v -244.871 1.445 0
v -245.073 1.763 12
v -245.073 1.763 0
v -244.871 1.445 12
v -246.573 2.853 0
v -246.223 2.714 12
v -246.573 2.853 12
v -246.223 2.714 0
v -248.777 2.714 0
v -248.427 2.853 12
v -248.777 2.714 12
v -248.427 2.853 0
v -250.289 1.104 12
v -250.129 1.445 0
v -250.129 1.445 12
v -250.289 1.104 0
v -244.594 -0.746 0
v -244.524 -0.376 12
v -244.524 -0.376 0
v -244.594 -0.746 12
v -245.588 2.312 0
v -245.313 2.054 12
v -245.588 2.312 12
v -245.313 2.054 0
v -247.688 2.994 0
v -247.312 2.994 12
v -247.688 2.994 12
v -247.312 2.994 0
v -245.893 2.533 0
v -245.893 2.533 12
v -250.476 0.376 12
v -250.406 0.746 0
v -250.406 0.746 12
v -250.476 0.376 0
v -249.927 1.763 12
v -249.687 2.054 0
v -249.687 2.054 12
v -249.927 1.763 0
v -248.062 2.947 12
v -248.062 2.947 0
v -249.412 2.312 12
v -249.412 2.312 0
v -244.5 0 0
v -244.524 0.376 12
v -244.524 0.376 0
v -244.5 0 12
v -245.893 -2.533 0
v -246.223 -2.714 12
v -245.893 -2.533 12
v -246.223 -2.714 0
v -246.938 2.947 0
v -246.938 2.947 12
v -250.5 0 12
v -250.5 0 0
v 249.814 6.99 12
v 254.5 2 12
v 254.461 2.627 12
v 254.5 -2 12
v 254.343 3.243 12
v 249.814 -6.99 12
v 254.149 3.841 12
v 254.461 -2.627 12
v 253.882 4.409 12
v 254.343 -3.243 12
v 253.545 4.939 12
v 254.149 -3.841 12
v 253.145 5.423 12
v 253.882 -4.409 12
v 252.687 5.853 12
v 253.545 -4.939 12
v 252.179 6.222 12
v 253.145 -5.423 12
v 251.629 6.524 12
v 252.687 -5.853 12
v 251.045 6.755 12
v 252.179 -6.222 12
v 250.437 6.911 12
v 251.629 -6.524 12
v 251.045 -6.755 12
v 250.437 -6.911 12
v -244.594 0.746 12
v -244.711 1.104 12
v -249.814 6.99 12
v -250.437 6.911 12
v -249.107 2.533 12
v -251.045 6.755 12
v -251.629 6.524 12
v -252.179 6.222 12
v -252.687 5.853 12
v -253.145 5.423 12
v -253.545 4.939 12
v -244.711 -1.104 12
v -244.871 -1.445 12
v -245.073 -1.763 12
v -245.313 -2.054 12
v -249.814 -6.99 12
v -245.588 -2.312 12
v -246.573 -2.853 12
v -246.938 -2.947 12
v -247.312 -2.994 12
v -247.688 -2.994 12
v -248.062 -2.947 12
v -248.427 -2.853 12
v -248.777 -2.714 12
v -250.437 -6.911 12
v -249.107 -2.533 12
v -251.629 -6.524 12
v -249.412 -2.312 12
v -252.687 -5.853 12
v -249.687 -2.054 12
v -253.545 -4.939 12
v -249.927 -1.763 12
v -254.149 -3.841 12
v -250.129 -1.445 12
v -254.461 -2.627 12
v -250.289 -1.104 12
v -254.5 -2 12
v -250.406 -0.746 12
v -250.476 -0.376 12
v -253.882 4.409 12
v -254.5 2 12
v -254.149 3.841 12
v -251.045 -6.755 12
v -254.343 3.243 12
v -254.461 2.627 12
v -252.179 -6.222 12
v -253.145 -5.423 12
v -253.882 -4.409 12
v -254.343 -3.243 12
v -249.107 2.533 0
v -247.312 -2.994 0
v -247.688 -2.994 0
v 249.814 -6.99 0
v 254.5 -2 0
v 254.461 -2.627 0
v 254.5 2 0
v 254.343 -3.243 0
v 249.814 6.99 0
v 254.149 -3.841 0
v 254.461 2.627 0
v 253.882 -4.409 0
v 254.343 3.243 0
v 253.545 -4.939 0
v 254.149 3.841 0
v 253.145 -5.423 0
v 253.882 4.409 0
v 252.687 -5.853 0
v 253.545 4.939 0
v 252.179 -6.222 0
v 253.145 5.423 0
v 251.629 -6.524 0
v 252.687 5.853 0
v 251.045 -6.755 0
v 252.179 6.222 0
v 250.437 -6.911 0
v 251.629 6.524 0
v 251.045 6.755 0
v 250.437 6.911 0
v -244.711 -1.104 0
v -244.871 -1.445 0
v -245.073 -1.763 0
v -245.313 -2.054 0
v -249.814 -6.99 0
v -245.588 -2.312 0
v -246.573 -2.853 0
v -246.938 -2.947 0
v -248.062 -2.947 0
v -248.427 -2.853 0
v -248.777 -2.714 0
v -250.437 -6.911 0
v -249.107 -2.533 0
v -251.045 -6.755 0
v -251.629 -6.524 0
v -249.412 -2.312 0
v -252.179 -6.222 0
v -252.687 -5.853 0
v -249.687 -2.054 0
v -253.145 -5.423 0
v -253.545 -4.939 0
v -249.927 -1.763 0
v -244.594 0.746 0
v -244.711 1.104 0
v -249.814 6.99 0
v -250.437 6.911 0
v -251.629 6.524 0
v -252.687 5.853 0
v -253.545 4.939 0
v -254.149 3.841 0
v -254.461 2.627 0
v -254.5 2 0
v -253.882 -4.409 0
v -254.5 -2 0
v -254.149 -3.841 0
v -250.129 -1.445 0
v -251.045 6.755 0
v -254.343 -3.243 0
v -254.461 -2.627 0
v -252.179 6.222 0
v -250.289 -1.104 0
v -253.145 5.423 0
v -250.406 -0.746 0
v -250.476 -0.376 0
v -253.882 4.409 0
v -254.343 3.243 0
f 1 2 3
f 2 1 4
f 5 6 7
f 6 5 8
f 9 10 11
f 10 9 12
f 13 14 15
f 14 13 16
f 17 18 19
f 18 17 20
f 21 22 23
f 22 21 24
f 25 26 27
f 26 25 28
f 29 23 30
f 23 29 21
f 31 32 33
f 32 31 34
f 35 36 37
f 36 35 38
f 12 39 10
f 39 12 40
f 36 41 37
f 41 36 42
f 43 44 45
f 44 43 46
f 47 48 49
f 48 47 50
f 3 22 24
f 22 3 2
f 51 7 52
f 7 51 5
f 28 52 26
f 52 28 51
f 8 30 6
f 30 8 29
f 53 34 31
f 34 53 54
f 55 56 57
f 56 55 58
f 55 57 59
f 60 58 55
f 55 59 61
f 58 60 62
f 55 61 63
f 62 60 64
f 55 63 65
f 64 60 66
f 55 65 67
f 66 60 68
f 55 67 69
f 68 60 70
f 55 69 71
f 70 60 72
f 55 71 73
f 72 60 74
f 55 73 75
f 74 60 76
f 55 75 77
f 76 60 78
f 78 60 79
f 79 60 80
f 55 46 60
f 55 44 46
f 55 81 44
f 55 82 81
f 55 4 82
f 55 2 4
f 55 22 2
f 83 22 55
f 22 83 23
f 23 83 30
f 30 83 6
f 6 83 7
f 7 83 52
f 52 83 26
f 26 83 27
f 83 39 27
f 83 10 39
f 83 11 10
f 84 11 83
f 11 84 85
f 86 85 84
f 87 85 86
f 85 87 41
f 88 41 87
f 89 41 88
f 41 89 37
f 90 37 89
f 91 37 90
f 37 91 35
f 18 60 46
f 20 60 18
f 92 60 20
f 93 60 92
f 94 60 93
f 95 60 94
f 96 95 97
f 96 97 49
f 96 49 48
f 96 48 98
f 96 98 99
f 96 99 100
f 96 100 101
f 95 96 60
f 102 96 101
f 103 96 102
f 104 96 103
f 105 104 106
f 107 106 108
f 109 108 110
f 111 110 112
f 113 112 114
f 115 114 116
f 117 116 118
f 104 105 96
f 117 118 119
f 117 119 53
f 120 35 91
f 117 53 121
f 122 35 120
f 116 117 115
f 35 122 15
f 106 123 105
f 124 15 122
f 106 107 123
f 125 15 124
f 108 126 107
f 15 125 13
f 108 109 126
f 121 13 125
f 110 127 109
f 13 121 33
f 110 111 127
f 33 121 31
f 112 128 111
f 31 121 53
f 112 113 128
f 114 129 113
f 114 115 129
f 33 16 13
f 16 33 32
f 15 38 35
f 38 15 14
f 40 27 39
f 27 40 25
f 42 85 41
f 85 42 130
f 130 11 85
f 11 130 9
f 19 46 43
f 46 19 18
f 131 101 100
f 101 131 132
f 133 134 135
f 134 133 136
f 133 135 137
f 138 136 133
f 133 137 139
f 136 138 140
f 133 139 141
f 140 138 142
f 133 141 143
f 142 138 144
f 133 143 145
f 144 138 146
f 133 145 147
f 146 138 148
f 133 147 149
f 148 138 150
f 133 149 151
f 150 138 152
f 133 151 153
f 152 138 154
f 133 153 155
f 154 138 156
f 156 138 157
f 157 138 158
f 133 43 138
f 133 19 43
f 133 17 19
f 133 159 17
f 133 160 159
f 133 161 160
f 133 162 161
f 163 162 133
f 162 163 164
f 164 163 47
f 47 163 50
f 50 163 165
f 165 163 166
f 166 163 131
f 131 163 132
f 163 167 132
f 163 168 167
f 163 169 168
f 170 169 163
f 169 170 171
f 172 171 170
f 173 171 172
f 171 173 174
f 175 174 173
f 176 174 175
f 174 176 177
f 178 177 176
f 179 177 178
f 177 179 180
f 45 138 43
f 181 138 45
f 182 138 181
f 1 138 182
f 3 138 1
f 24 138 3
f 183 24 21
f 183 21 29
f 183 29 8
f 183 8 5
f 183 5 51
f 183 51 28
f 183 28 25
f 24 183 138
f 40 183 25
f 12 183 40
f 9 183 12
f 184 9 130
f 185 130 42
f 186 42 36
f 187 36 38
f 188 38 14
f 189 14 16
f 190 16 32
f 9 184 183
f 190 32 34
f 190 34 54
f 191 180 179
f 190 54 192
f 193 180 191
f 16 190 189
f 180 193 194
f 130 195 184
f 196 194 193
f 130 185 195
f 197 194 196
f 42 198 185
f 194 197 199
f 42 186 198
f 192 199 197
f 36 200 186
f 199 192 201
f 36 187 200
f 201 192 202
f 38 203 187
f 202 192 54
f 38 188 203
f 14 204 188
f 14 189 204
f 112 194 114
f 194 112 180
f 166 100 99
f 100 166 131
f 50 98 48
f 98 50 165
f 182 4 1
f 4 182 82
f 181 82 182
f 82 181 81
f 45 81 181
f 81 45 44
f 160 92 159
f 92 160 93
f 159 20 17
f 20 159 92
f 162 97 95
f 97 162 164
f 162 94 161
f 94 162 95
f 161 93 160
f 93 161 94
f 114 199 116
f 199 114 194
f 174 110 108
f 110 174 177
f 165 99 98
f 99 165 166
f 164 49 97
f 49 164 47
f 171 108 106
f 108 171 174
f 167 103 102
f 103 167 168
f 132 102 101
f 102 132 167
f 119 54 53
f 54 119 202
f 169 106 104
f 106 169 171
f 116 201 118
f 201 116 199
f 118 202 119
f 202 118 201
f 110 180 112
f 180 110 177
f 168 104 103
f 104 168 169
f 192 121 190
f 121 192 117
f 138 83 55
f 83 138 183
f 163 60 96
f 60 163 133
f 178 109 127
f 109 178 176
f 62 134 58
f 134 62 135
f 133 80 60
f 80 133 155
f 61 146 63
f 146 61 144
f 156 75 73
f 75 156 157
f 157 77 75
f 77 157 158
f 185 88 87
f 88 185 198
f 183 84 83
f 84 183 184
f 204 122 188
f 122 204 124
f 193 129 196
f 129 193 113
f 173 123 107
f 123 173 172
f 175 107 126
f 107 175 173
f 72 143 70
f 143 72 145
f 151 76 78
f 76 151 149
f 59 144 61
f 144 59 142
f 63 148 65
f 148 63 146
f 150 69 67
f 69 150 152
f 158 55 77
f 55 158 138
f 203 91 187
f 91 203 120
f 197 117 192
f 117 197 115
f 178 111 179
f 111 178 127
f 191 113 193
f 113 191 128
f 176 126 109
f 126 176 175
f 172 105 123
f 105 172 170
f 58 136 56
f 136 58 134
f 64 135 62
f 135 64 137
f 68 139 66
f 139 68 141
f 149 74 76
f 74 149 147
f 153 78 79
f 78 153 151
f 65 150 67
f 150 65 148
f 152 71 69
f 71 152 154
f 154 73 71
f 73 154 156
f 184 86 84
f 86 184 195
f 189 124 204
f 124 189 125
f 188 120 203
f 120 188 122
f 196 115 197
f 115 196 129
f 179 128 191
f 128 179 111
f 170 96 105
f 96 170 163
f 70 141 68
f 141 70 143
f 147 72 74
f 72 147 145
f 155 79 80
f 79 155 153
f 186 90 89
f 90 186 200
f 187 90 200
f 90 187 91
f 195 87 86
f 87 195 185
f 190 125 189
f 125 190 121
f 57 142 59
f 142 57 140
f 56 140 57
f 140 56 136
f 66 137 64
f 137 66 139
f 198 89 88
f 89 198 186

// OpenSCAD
$fn = 50;


difference() {
	union() {
		hull() {
			translate(v = [-249.5000000000, 2.0000000000, 0]) {
				cylinder(h = 12, r = 5);
			}
			translate(v = [249.5000000000, 2.0000000000, 0]) {
				cylinder(h = 12, r = 5);
			}
			translate(v = [-249.5000000000, -2.0000000000, 0]) {
				cylinder(h = 12, r = 5);
			}
			translate(v = [249.5000000000, -2.0000000000, 0]) {
				cylinder(h = 12, r = 5);
			}
		}
	}
	union() {
		translate(v = [-247.5000000000, 0.0000000000, 0]) {
			cylinder(h = 12, r = 3.0000000000);
		}
		translate(v = [-247.5000000000, 0.0000000000, 0]) {
			cylinder(h = 12, r = 1.5000000000);
		}
		translate(v = [-247.5000000000, 0.0000000000, 0]) {
			cylinder(h = 12, r = 1.5000000000);
		}
		translate(v = [-247.5000000000, 0.0000000000, 0]) {
			cylinder(h = 12, r = 1.5000000000);
		}
	}
}
